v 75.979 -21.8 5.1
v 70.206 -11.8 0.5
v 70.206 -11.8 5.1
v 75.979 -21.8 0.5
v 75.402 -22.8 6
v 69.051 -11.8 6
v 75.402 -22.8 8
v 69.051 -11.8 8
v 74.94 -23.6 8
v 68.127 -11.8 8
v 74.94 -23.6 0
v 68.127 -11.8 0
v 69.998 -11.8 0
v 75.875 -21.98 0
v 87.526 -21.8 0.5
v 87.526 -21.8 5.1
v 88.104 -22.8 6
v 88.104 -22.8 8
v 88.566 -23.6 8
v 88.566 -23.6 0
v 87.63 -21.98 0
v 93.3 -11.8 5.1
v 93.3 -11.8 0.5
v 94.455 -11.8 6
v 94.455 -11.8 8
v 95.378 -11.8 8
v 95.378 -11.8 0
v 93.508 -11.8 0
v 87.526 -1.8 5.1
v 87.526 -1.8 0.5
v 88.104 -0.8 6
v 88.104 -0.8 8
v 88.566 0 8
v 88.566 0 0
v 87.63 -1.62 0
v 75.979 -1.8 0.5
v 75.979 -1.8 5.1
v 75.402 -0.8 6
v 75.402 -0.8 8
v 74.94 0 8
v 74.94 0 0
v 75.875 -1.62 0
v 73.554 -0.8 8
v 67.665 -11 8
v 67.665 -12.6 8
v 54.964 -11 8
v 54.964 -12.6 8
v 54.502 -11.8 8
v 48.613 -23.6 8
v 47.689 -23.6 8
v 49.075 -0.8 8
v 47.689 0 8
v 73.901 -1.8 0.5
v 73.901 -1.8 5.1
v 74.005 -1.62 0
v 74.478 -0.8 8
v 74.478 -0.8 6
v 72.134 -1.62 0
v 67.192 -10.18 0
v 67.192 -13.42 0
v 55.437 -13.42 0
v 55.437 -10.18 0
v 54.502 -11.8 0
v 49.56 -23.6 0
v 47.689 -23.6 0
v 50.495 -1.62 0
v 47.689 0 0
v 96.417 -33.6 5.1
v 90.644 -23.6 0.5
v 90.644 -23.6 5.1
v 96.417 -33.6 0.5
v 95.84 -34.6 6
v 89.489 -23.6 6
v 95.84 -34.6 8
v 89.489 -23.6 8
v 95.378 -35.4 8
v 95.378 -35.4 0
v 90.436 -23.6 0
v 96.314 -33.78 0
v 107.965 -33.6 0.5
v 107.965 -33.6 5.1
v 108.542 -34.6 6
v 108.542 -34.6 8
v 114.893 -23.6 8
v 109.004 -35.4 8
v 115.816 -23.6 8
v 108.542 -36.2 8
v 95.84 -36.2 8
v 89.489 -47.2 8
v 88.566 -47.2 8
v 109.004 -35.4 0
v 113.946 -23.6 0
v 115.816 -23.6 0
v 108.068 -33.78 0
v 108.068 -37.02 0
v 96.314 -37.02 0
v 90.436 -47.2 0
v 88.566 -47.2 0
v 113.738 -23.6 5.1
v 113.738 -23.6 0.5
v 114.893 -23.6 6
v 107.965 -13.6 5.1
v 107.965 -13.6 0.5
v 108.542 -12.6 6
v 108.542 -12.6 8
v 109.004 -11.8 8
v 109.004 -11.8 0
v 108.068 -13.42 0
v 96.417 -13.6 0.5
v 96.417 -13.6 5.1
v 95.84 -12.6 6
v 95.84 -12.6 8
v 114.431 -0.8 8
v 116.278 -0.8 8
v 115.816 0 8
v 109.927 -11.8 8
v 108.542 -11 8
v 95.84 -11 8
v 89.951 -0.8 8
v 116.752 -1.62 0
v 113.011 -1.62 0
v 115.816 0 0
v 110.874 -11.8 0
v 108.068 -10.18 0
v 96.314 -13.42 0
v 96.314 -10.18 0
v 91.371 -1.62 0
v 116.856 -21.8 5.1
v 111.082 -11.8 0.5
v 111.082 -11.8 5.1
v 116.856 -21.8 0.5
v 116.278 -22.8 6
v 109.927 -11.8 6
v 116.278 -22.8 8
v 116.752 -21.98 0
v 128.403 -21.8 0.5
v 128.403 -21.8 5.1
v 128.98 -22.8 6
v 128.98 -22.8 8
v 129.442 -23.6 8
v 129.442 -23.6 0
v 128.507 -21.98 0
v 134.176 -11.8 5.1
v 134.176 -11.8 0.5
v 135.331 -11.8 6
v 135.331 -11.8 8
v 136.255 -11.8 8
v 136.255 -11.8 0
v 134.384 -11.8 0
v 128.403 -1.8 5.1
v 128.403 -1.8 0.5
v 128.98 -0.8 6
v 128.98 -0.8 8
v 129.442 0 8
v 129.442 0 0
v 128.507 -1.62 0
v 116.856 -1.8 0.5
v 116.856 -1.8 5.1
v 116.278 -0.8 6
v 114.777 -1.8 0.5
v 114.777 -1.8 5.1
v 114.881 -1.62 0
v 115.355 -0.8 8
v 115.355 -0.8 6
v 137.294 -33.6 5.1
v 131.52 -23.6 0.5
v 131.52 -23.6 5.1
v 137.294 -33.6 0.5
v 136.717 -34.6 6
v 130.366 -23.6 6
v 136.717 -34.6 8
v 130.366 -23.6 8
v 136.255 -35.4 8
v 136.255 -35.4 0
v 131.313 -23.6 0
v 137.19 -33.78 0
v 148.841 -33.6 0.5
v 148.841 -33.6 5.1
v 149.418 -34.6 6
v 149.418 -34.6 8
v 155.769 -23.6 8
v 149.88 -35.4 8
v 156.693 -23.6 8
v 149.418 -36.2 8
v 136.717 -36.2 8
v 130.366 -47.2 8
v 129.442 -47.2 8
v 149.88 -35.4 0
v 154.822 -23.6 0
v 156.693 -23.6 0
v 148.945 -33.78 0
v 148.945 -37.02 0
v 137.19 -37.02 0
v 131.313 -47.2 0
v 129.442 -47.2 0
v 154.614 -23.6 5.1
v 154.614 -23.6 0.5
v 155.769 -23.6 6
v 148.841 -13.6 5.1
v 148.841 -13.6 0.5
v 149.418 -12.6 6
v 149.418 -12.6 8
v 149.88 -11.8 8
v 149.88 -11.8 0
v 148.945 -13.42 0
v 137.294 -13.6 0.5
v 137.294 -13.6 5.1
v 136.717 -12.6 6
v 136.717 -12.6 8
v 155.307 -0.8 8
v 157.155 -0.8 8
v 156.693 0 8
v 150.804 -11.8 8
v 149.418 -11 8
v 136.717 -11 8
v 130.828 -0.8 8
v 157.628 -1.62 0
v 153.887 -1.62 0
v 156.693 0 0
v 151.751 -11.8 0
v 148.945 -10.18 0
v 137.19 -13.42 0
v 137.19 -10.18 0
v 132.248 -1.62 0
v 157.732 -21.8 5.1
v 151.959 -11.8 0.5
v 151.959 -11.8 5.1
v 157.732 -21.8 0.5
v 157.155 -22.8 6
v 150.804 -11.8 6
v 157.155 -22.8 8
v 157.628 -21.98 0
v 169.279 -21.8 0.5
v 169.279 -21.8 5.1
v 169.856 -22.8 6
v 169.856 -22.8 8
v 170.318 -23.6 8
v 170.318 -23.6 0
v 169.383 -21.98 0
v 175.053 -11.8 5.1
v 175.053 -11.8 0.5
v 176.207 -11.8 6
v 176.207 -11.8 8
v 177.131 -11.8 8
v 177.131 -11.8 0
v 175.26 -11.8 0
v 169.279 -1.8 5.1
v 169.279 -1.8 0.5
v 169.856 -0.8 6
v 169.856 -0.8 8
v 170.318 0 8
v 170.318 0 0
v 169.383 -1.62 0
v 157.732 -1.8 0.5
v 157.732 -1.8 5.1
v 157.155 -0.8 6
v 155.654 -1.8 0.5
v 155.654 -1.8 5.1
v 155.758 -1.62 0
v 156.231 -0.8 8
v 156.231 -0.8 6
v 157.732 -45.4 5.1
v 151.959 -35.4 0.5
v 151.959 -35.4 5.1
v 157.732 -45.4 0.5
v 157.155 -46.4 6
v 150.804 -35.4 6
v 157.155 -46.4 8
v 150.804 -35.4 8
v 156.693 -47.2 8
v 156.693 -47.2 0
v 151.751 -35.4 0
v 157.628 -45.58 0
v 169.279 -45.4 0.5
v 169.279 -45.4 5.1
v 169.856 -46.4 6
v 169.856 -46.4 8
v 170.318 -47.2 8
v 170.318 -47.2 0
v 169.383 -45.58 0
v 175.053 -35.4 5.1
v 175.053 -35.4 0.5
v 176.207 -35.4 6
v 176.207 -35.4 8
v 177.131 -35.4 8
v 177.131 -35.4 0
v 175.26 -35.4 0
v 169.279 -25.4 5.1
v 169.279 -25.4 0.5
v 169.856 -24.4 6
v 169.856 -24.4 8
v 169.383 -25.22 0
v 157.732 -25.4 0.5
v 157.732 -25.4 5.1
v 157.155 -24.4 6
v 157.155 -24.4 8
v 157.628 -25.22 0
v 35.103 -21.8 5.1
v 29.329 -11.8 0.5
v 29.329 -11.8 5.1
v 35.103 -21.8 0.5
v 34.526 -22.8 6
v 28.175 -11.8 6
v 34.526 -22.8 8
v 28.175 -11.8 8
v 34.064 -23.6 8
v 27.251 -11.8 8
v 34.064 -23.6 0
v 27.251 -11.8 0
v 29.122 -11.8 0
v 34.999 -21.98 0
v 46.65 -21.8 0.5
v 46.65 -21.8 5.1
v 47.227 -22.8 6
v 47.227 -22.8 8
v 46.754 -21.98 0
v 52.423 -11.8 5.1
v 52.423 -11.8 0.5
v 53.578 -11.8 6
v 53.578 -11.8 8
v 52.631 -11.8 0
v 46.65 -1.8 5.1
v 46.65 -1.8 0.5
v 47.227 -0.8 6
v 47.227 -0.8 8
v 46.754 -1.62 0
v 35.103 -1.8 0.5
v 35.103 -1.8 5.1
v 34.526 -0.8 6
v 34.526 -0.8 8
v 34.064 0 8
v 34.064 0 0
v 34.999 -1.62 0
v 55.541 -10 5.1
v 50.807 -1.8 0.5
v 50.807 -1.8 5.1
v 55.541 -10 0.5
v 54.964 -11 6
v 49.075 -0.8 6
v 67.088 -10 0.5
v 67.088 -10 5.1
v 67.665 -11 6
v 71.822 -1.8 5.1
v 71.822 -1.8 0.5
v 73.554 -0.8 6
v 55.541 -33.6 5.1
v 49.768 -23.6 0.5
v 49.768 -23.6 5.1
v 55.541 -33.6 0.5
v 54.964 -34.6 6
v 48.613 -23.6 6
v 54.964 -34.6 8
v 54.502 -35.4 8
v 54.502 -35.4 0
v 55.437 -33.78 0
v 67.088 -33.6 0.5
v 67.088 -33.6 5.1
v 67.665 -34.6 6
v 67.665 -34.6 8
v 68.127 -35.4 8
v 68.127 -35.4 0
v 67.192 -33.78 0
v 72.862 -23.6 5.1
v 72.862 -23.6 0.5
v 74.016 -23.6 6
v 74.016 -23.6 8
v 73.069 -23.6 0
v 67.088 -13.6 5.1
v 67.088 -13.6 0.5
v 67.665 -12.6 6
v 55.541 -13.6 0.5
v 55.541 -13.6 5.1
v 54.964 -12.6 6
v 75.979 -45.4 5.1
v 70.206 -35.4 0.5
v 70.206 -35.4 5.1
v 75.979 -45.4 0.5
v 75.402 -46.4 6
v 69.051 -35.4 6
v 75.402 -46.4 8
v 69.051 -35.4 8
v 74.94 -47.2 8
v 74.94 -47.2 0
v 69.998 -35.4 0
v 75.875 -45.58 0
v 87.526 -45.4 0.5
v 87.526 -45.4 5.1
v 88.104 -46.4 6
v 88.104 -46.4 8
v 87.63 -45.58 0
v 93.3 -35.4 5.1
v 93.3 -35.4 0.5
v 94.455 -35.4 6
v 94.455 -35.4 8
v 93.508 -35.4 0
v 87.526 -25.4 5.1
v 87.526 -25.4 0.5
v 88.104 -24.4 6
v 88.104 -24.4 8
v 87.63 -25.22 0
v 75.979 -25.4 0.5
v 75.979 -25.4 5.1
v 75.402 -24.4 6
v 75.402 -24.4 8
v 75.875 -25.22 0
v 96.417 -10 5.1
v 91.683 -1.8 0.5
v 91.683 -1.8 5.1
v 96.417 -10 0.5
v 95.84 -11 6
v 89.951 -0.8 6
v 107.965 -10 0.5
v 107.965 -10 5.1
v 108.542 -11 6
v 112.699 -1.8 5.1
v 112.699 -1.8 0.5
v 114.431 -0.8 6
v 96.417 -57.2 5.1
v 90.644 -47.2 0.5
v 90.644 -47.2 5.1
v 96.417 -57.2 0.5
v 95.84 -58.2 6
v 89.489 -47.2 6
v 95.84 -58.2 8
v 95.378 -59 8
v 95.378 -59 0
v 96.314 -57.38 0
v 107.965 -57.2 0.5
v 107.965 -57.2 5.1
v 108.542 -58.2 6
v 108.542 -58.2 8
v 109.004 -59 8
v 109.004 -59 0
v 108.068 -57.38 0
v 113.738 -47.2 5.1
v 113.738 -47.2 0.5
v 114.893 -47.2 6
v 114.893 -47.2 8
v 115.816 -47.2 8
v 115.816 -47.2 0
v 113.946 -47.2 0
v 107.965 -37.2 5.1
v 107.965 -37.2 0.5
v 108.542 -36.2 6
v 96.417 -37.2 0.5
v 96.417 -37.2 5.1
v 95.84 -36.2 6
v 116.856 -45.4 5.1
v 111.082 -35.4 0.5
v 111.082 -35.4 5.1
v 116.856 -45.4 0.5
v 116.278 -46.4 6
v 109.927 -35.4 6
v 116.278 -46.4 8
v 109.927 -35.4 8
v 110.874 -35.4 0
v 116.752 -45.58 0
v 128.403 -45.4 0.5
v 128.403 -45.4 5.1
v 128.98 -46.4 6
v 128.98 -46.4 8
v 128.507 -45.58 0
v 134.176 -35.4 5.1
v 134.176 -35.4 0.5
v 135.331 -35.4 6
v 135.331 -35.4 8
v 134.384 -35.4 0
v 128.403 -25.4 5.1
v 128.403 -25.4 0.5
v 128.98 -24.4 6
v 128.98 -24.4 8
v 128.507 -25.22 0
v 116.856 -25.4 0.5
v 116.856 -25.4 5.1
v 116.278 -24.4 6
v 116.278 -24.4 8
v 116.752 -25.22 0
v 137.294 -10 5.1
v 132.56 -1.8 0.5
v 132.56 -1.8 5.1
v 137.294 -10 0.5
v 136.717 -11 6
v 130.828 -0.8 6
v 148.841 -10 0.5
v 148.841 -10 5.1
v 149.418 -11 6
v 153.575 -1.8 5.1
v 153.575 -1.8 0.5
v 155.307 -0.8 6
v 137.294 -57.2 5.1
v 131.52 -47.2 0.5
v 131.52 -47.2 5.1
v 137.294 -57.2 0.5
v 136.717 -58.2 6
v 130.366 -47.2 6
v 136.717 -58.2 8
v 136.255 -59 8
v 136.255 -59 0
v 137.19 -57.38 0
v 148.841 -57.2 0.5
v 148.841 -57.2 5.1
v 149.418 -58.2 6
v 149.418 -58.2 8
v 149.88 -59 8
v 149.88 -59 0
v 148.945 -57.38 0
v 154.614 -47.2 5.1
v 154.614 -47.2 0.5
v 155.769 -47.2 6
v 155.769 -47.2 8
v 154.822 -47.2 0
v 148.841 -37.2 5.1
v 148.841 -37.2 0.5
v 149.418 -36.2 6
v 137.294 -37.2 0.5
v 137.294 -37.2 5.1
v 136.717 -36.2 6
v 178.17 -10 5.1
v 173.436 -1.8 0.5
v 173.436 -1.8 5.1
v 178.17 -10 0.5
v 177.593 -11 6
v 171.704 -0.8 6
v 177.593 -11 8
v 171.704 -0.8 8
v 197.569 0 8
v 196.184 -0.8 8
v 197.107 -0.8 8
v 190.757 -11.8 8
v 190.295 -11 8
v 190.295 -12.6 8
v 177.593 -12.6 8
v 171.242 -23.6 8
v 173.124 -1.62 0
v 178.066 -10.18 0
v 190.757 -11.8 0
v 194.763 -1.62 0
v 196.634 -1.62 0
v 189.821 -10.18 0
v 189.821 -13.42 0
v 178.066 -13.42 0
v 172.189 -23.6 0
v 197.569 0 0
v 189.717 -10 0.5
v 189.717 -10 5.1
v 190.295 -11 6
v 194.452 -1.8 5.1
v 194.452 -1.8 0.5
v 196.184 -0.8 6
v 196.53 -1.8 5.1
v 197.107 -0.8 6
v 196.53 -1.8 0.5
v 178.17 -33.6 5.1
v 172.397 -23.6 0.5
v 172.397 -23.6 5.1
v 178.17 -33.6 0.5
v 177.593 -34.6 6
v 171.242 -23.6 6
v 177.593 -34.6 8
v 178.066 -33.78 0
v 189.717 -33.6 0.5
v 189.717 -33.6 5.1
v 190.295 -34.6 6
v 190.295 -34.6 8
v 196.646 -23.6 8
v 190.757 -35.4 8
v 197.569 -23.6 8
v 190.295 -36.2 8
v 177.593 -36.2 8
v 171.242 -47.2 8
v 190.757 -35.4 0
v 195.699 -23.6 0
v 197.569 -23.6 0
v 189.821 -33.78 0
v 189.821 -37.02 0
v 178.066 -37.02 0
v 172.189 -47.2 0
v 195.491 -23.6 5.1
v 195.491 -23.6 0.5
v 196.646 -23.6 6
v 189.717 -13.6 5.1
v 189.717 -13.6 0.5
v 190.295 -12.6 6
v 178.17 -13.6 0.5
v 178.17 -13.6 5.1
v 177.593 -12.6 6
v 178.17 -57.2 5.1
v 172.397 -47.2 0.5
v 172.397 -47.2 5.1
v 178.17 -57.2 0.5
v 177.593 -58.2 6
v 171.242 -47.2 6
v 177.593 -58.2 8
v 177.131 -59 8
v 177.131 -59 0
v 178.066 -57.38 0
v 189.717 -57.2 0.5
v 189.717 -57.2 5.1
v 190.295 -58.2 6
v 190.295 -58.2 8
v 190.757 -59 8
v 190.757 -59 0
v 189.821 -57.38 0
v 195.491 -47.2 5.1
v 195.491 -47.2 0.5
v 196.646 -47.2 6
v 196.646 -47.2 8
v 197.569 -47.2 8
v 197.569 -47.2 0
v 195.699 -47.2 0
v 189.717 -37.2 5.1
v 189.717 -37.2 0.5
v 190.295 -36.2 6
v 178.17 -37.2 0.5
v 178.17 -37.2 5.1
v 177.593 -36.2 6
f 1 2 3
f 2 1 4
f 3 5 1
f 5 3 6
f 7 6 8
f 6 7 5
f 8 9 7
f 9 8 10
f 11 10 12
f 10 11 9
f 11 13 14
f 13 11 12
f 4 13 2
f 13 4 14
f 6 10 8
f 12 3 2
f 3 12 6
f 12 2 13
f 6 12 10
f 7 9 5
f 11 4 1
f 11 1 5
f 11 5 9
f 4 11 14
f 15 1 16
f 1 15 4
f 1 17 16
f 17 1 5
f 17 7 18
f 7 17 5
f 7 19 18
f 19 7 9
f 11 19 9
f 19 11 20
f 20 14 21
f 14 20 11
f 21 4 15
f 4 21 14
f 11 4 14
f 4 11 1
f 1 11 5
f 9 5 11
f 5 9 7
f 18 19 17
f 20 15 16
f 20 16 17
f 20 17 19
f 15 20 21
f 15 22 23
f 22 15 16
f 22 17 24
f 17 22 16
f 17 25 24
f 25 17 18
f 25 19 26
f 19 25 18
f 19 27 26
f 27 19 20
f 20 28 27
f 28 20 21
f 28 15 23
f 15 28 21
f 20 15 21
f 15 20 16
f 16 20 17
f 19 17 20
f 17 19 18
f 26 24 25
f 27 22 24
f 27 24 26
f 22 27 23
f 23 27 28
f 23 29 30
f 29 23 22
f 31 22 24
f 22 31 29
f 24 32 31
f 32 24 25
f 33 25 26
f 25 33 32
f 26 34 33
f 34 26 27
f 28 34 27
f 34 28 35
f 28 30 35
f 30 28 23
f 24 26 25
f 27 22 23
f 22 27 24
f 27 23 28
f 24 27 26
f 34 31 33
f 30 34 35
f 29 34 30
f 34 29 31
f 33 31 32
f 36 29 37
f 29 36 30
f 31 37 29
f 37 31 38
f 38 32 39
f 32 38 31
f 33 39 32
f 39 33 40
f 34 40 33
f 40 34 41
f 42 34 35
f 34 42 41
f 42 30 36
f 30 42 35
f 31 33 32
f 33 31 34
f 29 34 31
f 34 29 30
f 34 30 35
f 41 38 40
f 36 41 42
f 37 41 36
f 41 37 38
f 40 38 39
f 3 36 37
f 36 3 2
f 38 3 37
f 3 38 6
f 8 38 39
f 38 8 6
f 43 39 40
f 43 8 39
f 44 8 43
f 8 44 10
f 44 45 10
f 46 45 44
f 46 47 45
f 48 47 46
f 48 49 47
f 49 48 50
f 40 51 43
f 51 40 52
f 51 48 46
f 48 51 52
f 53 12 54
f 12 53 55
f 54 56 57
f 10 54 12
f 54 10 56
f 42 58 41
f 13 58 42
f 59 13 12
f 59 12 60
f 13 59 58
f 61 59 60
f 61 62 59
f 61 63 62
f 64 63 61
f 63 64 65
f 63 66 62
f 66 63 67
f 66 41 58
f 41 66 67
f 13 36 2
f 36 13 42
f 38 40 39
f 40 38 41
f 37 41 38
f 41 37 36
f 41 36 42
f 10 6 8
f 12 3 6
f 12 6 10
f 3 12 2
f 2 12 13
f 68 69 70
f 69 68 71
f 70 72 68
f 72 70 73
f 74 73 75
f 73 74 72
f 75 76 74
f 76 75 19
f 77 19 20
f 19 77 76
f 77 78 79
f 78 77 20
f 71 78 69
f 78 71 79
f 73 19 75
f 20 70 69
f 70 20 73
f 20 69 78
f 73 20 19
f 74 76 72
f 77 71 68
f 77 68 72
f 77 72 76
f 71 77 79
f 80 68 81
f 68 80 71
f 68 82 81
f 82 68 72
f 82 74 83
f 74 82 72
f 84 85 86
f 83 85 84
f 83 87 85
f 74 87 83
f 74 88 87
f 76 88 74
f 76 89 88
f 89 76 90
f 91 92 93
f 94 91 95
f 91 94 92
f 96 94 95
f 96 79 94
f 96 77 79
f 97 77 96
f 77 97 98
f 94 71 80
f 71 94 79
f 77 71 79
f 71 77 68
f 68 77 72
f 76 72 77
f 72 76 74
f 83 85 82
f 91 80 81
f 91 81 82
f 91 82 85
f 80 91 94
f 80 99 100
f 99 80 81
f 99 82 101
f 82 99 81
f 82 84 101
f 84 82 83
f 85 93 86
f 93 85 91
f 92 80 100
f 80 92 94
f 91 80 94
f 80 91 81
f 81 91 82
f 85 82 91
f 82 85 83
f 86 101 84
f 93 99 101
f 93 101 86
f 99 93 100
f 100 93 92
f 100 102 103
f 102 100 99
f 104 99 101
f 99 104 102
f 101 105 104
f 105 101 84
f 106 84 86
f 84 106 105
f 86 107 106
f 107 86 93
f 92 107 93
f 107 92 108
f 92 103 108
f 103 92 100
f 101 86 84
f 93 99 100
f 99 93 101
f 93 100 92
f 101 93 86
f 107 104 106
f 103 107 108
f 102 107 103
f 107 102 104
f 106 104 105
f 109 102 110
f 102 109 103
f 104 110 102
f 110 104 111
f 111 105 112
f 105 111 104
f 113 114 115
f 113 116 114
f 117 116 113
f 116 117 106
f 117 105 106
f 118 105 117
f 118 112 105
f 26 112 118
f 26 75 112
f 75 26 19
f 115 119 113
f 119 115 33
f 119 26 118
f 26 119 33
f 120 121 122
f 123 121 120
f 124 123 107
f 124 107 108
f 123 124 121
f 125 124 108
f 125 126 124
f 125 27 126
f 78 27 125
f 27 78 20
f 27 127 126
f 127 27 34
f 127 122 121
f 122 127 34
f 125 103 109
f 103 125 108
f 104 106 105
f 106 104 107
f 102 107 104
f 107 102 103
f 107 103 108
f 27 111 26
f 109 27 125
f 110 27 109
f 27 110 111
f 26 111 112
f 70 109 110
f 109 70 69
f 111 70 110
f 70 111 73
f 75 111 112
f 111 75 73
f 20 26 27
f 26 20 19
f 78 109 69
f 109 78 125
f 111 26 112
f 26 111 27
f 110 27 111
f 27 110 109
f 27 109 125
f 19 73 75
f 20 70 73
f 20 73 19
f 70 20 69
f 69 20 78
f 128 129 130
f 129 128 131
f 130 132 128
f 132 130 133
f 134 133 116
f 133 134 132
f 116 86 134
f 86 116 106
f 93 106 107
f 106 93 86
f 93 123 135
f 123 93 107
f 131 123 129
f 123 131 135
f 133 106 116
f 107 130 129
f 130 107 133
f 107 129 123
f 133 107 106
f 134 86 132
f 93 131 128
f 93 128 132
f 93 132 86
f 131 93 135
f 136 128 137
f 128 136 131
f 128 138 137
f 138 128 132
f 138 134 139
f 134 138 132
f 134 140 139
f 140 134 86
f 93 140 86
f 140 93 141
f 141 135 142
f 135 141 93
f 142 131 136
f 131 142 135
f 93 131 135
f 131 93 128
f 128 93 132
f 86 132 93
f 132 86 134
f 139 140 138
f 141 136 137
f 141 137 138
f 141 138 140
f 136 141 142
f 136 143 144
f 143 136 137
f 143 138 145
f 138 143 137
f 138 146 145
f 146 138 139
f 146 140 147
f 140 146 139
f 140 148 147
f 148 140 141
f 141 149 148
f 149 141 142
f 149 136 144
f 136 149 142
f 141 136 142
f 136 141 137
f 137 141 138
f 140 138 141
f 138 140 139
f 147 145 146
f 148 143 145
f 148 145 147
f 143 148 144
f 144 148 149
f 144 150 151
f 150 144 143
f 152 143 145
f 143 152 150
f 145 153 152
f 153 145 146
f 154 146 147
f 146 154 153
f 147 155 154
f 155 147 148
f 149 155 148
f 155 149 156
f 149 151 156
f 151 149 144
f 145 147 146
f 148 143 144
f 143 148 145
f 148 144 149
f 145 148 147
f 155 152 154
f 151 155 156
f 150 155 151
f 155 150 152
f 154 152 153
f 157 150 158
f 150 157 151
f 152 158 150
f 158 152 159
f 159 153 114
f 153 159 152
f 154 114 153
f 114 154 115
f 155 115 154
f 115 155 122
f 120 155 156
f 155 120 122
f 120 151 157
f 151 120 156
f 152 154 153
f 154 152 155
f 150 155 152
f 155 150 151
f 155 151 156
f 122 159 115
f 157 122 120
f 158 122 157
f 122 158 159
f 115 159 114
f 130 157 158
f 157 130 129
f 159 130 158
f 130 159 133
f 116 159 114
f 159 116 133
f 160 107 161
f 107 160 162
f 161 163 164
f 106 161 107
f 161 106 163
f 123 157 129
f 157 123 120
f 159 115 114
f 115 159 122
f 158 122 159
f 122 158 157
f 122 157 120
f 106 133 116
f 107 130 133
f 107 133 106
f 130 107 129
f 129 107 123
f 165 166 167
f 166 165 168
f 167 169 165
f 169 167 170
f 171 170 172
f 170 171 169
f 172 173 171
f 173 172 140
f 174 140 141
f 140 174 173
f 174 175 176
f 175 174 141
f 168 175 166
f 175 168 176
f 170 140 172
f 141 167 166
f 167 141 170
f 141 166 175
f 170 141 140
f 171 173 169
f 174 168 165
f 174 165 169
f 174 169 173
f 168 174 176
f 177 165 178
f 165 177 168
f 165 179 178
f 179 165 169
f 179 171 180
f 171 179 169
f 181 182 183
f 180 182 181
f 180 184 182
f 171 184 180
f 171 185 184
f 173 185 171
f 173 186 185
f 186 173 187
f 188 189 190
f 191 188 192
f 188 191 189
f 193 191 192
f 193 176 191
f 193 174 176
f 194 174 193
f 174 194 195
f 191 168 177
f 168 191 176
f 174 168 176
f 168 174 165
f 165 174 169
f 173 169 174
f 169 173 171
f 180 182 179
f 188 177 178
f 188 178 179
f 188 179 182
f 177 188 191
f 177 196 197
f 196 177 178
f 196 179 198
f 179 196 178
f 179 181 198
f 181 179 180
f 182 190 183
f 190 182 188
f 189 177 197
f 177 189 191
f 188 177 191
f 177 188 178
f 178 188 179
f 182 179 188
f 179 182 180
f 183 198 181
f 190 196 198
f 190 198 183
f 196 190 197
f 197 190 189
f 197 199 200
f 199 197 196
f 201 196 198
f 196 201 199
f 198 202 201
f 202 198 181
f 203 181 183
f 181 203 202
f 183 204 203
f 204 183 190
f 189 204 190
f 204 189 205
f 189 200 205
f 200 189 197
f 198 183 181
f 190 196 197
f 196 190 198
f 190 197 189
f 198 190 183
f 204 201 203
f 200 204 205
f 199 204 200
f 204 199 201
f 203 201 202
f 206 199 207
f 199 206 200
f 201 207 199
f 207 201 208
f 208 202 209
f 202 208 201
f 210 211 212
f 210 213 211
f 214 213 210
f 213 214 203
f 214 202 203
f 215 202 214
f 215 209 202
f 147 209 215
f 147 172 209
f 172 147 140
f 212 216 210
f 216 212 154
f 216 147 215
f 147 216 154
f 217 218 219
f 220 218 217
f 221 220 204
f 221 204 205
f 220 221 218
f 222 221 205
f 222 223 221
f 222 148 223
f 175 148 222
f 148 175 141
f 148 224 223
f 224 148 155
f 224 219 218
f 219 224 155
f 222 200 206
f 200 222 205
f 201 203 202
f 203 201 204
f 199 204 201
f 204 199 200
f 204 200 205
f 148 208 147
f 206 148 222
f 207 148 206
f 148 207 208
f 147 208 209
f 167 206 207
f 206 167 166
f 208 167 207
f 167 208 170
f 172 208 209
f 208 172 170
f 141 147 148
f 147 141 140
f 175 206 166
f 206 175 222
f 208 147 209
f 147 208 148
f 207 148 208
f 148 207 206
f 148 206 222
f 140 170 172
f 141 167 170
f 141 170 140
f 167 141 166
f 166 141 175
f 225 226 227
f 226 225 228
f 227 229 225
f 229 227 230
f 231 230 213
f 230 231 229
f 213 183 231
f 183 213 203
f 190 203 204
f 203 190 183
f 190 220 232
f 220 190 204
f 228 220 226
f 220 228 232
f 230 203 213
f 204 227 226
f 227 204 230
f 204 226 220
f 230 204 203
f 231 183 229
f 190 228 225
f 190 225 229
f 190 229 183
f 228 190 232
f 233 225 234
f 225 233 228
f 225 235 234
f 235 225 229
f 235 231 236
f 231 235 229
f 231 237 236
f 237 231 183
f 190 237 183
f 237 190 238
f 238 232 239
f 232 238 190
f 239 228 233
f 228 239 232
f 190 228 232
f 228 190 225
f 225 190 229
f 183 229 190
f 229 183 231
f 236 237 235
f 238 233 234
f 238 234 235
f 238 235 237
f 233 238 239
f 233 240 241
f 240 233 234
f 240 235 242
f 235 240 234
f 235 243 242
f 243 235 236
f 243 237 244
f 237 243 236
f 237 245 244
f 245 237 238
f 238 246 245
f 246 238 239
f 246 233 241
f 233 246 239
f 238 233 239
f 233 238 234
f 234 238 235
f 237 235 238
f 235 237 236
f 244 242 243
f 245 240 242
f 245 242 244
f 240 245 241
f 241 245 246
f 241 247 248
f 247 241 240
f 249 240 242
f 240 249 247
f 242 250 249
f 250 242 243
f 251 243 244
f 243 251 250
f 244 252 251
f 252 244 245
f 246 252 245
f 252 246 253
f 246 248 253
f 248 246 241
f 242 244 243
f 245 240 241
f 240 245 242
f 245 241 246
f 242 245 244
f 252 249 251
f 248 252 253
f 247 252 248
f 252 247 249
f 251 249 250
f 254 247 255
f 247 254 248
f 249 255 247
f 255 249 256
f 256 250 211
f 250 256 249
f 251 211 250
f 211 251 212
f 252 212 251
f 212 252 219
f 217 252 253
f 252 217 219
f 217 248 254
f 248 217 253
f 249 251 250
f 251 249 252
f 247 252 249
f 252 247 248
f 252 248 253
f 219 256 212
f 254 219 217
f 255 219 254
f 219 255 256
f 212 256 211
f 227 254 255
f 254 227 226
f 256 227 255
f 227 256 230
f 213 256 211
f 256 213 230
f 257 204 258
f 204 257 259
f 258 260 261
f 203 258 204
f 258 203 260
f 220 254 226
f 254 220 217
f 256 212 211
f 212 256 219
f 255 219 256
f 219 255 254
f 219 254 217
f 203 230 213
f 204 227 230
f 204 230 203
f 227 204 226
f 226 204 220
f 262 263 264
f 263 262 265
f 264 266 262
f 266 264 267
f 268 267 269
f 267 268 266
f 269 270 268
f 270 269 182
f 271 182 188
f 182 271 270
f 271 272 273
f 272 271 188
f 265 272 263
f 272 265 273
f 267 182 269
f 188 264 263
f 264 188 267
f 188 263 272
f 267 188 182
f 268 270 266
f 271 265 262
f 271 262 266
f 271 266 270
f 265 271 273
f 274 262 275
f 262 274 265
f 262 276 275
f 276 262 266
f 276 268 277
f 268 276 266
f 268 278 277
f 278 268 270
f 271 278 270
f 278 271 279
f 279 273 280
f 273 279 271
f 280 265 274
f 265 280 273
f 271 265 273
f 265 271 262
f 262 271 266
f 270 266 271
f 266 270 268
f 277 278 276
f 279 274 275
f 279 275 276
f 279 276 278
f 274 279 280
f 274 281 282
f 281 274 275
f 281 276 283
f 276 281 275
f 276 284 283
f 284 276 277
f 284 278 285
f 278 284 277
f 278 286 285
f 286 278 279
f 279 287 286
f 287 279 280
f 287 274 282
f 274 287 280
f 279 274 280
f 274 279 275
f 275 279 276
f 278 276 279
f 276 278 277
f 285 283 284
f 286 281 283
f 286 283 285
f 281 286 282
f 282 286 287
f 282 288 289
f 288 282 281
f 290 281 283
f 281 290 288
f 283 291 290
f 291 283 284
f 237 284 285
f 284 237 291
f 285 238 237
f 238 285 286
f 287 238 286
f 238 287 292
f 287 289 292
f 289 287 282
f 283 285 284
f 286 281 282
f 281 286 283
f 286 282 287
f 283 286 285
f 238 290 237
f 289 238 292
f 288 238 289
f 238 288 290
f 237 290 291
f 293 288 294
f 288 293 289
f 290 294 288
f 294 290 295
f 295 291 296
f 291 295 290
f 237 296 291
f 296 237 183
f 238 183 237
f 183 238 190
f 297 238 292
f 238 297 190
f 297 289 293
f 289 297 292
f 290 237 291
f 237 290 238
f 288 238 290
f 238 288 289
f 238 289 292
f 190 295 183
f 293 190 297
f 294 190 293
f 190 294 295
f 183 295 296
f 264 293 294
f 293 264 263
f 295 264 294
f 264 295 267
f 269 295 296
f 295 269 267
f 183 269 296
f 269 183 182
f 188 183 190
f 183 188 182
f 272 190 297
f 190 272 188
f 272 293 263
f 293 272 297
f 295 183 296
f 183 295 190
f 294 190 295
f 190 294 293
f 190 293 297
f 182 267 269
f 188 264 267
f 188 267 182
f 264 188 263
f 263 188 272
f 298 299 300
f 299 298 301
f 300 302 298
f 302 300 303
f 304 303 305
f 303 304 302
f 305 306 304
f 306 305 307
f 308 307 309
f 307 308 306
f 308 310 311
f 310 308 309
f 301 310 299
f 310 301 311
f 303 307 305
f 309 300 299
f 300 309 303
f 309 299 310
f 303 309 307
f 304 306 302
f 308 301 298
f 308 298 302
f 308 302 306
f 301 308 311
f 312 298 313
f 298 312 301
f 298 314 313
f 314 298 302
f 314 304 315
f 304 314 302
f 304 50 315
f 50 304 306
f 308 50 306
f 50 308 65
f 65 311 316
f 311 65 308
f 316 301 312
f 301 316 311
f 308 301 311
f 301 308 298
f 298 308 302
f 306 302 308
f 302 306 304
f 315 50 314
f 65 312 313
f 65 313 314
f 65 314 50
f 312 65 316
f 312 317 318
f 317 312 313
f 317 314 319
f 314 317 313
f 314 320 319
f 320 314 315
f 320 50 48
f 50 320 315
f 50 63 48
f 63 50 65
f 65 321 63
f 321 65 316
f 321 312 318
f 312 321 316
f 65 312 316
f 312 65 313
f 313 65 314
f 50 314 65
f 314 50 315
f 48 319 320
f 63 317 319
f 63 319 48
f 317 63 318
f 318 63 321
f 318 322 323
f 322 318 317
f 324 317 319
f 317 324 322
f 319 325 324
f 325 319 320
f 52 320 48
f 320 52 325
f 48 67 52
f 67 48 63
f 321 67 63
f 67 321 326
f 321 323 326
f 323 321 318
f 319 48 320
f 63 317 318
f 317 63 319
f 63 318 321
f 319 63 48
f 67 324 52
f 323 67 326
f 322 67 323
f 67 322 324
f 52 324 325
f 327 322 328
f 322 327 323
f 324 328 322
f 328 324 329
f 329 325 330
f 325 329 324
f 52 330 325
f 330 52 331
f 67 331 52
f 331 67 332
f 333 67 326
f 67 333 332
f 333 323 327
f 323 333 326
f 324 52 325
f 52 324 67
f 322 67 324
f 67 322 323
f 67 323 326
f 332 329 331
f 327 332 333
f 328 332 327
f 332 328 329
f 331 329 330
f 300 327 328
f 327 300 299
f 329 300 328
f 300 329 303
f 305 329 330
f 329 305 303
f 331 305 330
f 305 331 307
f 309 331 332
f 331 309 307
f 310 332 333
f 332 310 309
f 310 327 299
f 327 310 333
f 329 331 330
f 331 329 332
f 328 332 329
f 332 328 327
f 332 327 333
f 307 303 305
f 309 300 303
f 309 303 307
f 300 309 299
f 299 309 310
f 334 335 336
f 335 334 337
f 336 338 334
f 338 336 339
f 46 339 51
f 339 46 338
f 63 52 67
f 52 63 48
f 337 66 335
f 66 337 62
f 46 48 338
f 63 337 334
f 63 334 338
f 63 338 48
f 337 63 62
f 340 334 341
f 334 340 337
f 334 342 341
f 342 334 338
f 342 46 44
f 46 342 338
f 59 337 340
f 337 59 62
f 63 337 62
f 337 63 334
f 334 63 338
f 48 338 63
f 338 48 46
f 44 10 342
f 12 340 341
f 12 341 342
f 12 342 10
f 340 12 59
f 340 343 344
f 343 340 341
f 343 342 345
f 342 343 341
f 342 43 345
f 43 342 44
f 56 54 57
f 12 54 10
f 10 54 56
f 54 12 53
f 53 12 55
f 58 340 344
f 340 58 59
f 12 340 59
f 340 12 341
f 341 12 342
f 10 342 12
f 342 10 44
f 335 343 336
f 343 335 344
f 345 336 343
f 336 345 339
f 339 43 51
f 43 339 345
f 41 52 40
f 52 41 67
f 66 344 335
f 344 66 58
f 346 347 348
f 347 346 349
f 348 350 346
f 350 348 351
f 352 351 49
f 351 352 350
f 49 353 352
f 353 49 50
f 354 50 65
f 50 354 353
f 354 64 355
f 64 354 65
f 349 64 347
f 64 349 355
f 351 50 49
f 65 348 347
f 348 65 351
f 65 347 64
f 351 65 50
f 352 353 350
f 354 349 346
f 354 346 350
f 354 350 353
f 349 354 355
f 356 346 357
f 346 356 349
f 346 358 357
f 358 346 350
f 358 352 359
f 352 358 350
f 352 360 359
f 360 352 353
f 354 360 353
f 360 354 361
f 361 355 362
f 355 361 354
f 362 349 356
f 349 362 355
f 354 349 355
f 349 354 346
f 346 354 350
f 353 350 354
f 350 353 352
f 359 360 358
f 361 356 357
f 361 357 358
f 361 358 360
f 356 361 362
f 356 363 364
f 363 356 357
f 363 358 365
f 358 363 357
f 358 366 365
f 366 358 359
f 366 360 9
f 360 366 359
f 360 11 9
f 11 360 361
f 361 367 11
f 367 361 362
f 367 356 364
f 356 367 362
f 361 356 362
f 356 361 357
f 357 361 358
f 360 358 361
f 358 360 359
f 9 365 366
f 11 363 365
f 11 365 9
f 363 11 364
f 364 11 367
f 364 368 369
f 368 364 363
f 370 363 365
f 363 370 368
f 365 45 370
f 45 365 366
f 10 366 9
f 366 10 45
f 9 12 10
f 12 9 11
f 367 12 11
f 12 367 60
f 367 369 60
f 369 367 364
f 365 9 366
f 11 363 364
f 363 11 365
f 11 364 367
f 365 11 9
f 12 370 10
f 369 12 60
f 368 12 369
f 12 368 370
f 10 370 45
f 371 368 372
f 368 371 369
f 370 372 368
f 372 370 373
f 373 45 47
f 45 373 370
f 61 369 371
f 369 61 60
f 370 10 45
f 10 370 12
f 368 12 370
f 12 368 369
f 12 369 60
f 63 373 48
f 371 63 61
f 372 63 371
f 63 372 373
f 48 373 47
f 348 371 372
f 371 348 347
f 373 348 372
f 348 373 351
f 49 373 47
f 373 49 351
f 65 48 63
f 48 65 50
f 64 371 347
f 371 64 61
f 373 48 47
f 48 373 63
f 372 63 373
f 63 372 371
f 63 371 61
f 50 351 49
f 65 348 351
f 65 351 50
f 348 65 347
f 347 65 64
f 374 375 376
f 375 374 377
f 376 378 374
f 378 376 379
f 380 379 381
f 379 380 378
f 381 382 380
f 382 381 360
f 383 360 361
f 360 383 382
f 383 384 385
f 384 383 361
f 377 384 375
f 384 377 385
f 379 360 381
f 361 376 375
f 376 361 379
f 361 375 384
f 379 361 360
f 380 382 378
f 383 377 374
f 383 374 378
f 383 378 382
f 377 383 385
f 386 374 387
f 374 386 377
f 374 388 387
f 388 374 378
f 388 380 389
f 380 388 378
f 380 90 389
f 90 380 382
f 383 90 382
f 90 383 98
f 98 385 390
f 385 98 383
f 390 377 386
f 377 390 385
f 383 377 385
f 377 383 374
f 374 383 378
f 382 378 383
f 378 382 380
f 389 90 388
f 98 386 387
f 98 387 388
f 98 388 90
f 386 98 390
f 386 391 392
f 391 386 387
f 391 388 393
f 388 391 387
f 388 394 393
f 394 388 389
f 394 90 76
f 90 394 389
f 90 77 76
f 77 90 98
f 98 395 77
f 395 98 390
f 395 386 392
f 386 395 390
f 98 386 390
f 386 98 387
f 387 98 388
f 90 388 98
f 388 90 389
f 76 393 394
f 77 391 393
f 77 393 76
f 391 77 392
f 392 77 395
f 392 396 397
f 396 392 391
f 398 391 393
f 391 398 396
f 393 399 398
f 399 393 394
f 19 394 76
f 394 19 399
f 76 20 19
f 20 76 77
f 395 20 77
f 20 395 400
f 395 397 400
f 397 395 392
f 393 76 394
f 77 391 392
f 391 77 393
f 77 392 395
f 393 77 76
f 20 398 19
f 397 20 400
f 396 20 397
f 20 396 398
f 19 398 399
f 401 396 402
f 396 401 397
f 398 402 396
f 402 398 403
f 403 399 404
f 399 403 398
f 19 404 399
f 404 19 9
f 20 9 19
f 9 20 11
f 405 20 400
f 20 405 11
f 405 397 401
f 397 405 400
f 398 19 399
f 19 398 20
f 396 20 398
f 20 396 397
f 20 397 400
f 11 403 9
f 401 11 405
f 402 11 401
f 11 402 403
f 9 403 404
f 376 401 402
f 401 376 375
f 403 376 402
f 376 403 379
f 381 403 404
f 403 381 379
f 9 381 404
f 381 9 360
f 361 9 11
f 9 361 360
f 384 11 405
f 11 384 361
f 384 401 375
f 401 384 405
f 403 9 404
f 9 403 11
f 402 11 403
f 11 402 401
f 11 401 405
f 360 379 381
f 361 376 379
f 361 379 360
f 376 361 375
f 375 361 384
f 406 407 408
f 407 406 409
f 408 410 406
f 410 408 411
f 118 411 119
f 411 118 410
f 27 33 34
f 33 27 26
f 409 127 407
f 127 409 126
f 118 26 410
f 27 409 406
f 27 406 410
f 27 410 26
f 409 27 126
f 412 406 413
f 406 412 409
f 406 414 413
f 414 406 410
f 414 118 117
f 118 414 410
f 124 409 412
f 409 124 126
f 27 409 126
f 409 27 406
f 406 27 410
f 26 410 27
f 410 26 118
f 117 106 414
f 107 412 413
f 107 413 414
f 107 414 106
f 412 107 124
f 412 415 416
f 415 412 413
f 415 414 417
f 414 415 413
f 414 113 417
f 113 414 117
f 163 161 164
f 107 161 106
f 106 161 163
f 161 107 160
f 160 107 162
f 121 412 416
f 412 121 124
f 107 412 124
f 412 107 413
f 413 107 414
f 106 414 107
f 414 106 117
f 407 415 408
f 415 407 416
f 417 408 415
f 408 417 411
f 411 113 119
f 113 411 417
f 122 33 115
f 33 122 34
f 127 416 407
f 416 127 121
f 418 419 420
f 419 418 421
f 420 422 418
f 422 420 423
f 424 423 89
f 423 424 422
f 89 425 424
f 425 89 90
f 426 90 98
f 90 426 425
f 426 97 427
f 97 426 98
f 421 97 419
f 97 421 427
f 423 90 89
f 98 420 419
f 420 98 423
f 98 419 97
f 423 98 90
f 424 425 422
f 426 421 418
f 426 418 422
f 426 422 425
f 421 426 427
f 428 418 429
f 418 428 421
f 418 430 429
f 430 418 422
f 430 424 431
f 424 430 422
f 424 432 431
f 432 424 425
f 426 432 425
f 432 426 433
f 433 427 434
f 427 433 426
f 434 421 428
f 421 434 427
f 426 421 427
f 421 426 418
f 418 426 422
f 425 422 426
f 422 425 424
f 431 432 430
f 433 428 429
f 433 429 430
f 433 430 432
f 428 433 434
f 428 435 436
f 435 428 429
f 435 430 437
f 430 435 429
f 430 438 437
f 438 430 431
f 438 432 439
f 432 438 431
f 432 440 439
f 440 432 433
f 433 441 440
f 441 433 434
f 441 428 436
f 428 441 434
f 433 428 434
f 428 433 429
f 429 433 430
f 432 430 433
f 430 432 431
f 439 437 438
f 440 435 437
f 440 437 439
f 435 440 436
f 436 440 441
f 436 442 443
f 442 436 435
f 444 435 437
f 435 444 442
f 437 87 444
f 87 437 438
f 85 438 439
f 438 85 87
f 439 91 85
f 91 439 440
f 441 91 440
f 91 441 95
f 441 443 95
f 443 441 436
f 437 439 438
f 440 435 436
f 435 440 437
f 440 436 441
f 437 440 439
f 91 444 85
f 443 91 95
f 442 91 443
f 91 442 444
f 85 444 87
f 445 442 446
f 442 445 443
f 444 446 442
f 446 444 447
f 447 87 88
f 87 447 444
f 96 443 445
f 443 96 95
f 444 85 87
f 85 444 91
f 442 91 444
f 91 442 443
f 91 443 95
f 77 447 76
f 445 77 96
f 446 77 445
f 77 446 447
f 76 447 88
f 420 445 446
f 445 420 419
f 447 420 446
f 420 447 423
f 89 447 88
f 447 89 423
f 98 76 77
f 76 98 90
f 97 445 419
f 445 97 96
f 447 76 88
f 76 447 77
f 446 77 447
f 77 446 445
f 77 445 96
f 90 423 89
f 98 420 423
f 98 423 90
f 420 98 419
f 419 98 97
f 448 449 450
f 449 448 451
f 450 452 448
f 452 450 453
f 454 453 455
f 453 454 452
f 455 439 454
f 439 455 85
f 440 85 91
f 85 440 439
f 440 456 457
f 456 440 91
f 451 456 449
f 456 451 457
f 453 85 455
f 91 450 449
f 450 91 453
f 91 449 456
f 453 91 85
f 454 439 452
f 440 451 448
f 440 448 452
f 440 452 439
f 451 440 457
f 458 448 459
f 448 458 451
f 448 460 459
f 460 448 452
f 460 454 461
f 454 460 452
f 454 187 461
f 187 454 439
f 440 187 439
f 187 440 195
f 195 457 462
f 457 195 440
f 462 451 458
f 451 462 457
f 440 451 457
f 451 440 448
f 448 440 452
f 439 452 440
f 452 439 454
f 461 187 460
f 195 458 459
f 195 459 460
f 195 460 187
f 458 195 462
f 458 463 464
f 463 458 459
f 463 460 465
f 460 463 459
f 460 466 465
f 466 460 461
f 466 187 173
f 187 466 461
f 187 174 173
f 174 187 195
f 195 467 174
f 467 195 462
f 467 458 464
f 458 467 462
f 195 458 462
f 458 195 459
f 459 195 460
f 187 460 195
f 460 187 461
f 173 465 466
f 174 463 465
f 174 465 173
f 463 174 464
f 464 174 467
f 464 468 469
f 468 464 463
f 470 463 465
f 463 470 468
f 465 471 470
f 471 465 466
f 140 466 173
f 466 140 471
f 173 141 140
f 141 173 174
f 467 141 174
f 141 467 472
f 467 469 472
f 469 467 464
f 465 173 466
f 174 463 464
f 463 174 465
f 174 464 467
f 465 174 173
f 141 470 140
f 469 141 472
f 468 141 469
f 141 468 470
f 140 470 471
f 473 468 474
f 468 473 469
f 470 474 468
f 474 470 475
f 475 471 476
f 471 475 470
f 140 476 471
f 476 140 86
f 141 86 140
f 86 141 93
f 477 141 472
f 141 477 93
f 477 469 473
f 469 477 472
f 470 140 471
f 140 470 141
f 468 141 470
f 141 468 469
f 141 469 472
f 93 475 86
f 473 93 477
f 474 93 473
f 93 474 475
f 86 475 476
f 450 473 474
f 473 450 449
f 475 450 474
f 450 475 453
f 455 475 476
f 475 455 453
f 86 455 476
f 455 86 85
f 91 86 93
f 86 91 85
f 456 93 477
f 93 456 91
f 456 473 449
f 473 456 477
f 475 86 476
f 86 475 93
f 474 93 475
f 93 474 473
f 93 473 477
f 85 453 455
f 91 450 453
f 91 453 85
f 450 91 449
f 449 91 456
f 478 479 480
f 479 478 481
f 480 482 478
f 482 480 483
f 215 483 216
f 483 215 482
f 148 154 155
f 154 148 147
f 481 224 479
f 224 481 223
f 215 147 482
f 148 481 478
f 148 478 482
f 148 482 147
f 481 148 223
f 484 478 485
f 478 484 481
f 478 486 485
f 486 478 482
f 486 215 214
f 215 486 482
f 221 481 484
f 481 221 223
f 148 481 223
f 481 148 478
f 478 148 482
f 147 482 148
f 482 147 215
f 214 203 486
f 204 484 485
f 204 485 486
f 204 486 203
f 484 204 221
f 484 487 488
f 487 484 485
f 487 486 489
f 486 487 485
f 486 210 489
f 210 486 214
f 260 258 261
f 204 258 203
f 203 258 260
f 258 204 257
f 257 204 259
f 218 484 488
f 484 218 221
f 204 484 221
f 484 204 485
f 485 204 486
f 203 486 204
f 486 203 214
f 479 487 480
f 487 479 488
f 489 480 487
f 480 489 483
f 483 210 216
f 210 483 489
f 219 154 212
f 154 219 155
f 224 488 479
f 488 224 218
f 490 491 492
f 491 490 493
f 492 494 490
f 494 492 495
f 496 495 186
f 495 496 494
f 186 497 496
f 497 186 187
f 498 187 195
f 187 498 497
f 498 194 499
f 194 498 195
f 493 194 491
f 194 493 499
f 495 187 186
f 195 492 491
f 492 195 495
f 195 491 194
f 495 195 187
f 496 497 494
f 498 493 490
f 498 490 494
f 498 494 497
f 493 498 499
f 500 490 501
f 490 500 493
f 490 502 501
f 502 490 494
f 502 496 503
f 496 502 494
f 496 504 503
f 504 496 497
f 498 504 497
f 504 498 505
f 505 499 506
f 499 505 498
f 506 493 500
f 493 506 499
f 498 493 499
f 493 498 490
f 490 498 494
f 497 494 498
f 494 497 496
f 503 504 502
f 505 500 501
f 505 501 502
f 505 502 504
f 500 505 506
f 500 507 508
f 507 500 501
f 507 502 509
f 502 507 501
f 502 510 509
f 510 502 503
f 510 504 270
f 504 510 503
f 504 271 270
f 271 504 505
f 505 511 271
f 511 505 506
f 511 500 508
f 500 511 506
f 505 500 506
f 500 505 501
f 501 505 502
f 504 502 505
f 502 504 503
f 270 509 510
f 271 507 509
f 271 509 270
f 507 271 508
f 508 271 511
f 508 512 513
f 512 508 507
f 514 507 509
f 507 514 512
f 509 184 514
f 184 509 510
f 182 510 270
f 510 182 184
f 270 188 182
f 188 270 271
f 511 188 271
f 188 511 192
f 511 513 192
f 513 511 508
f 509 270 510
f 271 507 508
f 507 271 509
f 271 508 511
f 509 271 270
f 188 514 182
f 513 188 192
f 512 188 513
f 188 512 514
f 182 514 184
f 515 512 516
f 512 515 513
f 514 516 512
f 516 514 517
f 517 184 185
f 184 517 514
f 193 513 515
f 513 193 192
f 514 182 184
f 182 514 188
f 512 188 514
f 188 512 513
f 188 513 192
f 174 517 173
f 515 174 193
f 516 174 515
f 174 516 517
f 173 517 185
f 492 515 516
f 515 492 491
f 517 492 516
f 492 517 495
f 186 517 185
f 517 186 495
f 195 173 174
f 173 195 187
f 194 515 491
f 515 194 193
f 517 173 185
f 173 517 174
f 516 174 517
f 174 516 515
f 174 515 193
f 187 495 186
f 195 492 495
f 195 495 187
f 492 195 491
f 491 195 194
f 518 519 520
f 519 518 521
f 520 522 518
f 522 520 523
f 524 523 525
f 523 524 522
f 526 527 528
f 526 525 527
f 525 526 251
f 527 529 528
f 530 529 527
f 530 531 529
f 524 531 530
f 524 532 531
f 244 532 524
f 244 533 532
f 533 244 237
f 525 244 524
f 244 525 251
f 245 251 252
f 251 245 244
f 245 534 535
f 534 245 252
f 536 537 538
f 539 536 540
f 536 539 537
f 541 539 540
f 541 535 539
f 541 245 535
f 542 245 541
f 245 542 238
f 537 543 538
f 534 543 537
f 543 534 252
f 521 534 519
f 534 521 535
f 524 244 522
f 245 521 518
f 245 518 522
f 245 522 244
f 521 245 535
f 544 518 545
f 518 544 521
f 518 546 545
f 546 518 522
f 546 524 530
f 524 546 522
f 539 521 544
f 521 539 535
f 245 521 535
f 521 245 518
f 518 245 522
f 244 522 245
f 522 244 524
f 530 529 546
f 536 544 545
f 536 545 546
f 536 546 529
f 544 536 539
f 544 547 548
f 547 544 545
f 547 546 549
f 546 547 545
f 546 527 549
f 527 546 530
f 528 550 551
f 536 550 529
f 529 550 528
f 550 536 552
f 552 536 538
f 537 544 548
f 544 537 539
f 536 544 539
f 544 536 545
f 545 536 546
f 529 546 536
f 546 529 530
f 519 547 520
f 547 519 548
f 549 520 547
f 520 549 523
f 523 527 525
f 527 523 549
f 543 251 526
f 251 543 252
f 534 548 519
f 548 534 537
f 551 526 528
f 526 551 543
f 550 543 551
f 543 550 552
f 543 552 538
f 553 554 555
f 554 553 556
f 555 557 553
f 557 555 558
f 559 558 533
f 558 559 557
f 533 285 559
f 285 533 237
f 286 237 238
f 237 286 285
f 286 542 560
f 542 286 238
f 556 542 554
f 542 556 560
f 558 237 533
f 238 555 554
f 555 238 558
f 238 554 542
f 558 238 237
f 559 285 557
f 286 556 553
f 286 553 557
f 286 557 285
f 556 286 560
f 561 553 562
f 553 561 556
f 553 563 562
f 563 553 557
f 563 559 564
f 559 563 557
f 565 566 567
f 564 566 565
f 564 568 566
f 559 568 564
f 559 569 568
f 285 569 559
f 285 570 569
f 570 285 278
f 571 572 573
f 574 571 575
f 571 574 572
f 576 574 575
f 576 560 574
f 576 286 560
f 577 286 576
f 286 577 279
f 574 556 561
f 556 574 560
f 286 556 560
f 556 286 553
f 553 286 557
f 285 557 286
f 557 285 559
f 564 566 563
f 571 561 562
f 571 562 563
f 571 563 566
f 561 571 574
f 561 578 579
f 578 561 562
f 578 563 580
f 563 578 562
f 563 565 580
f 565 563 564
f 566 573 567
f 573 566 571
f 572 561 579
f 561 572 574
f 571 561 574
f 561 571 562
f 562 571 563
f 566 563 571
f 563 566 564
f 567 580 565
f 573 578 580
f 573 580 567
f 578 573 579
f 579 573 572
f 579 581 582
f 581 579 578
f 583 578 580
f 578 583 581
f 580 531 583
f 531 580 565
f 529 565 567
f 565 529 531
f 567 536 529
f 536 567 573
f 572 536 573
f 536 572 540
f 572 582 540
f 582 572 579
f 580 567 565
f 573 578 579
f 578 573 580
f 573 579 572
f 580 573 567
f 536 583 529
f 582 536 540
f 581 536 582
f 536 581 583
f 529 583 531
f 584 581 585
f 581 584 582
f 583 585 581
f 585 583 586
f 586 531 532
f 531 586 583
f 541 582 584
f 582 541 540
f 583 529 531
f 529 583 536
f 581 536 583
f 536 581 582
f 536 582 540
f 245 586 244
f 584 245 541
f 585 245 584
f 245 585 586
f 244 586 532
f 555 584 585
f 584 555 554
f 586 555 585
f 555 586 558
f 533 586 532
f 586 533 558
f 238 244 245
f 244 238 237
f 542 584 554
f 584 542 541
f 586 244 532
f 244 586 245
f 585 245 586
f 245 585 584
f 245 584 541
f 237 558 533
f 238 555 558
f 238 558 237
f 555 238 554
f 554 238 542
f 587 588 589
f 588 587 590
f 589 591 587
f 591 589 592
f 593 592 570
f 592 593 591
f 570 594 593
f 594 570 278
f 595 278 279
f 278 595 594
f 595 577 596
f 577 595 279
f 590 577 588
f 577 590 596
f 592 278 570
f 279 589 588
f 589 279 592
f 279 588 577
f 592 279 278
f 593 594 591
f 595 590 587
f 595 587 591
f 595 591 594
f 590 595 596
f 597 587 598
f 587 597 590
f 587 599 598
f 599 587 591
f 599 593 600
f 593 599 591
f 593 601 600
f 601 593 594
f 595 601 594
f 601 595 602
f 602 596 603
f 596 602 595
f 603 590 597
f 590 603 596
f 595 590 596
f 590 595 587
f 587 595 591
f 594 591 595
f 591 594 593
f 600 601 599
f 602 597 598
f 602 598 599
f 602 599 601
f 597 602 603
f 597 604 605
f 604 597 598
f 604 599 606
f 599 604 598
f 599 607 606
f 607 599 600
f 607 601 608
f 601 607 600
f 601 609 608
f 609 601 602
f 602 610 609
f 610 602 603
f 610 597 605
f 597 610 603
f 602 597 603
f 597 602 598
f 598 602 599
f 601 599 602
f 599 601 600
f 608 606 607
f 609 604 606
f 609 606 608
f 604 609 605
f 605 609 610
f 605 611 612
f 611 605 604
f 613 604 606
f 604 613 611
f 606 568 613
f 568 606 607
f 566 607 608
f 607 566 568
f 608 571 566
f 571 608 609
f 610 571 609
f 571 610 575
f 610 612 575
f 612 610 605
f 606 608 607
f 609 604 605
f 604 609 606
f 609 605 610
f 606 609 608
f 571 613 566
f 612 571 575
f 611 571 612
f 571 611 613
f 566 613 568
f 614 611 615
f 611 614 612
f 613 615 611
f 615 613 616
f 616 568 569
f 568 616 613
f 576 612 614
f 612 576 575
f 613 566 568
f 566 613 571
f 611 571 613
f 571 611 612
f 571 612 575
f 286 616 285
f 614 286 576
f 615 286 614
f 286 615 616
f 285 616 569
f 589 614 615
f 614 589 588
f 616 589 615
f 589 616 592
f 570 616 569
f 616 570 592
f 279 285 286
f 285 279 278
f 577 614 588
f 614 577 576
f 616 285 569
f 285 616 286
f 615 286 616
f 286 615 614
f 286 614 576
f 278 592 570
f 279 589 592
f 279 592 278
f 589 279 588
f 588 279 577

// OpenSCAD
/*[ Hex unit size ]*/

//Depth of the grid
depth = 8;
//Width of the hexagon's hole (flat side to flat side)
hole_width = 20;
//Thickness of the wall forming each hexagon
wall_thickness = 1.8;

/*[ Grid size settings ]*/
max_grid_width=100;
max_grid_height=100;

/*[ Grid shape ]*/
//If checked, ignores custom column sizes and fills grid to maximum size.
fill=false;
flip_staggering=true;
//Amount of hexagons per column. Each entry defines a one column, where the number specifies the amount of hex units that will be generated for the respective column. (Ignored if "fill" is checked)
columns=[9,10,1,2,2,3,2,3,2,3];
include_offsets=false;
//Optional: Offset for each column. This will ignore grid size limits.
column_offsets=[0,-2,-3,-1,0,2,4];
include_gaps=true;
//Optional: Gaps for each column. *NOTE: Change these values in the code. Seems like 2D vector parameters aren't supported by the parameter editor and are always overwritten by the defaults.
column_gaps=[
                [1,2,3,4,5,6,7,8,9], // column 1
                [1,2,3,4,5,6,7,8,9,10], // column 2
                
            ];

/*[ Flat edges ]*/
edge_left = true;
edge_top = true;
edge_right = false;
edge_bottom = false;


//Calculated global variables
//Hexagon dimensions
hex_inner_r = hole_width/sqrt(3); //Inner radius/side length (center to point)
hex_h=hole_width+wall_thickness*2; //Outer side to side distance
hex_s=hex_h/sqrt(3); //Outer radius/side length 
hex_d=2*hex_s; //Outer diameter (point to point)
hex_t=hex_s/2;
//Grid dimensions
max_grid_hexagons_x = fill? floor(max_grid_width/(hex_d-hex_t) +(edge_left?0.5:0) +(edge_right?0.5:0)): len(columns);
max_grid_hexagons_y = fill? floor(max_grid_height/hex_h +(edge_top?0.5:0) +(edge_bottom?0.5:0)): max(columns);
max_grid_hexagons_y_lo = fill? floor(max_grid_height/hex_h - 0.5 +(edge_top?0.5:0) +(edge_bottom?0.5:0)): (max(columns) - 0.5);
total_width = max_grid_hexagons_x * (hex_d-hex_t) + hex_t;
total_height = hex_h*max(max_grid_hexagons_y - 0.5, max_grid_hexagons_y_lo);


translate([edge_left?0:hex_s, edge_top?0:-hex_h/2, 0])
grid(columns, include_offsets?column_offsets:[], include_gaps?column_gaps:[], depth, hole_width, wall_thickness, fill);


module grid(cols, offsets, gaps, height, hole_width, wall_width, fill){    
    for(hcol = [0:fill?max_grid_hexagons_x-1:(len(cols)-1)]){
        for(hrow = [0:(fill?(max_grid_hexagons_y-1):(cols[hcol]-1))]) {
            skip = hcol<len(gaps) && len(search(hrow+1, gaps[hcol])) > 0;          
            if(!skip){
                offset_value=hcol>len(offsets)-1?0:offsets[hcol];
                
                lo = (hcol+(flip_staggering?1:0))%2;
                x = (hex_d-hex_t)*hcol;
                y = -(hex_h)*(hrow + offset_value + lo/2);                
                
                if(hcol<max_grid_hexagons_x && hrow<(lo==0?max_grid_hexagons_y:max_grid_hexagons_y_lo)){
                    left = edge_left && hcol==0;
                    top = edge_top && hrow==0 && hcol%2==(flip_staggering?1:0);
                    right = edge_right && hcol==max_grid_hexagons_x-1;
                    bottom = edge_bottom && hrow+1==(lo==0?max_grid_hexagons_y:max_grid_hexagons_y_lo) && -y+hex_h>total_height+0.001 && -y+hex_h/2<=total_height;
                    translate([x, y, 0]) halfhex(height, hex_s, wall_width, hole_width, left, top, right, bottom);
                }
            }        
        }
    }
}

module halfhex(height, radius, wall_thickness, hole_width, left, top, right, bottom){
    difference(){
        union(){
            hex(height, radius, wall_thickness, hole_width);
            if(left) translate([0, hex_h/2, 0]) wall(depth, wall_thickness, hex_h);
            if(top) translate([hex_d/2, 0, 0]) rotate([0,0,-90]) wall(depth, wall_thickness, hex_d);
            if(right) translate([0, -hex_h/2, 0]) rotate([0,0,180]) wall(depth, wall_thickness, hex_h);
            if(bottom) translate([-hex_d/2, 0, 0]) rotate([0,0,90]) wall(depth, wall_thickness, hex_d);
        }
        if(left) translate([-hex_d/2, -hex_h, 0]) cube([hex_d/2, 2*hex_h, depth]);
        if(top) translate([-hex_d/2, 0, 0]) cube([hex_d, hex_h, depth]);
        if(right) translate([0, -hex_h, 0]) cube([hex_d/2, 2*hex_h, depth]);
        if(bottom) translate([-hex_d/2, -hex_h, 0]) cube([hex_d, hex_h, depth]);
    }
}

module hex(height, radius, wall_thickness, hole_width){
    for(i=[0:5]){
        rotate([0,0,i*60+30])
        translate([-hole_width/2-wall_thickness, radius/2, 0])
        wall(height, wall_thickness, radius);
    }
}

module wall(height, wall_thickness, length){
    hmax=height;
    hmin=5.1;
    hd=2;
    tmax=wall_thickness;
    tmin=wall_thickness-1;   
    ft = 0.18;//fillet thickness
    fh = 0.5;//fillet height
    color("cyan")
    difference(){
        color([0,0,1])
        rotate([90,0,0])
            linear_extrude(length)   
            polygon([[0,0], [0,hmax], [tmin,hmax], [tmin,hmax-hd], [tmax,hmin], [tmax,fh], [tmax-ft,0]]);
        //Fillet
        rotate([0,0,-30])
            cube([4*tmax, 2*tmax, hmax]);
        mirror([0,1,0])
            translate([0,length,0])
            rotate([0,0,-30])
            cube([4*tmax, 2*tmax, hmax]);
    }
}
